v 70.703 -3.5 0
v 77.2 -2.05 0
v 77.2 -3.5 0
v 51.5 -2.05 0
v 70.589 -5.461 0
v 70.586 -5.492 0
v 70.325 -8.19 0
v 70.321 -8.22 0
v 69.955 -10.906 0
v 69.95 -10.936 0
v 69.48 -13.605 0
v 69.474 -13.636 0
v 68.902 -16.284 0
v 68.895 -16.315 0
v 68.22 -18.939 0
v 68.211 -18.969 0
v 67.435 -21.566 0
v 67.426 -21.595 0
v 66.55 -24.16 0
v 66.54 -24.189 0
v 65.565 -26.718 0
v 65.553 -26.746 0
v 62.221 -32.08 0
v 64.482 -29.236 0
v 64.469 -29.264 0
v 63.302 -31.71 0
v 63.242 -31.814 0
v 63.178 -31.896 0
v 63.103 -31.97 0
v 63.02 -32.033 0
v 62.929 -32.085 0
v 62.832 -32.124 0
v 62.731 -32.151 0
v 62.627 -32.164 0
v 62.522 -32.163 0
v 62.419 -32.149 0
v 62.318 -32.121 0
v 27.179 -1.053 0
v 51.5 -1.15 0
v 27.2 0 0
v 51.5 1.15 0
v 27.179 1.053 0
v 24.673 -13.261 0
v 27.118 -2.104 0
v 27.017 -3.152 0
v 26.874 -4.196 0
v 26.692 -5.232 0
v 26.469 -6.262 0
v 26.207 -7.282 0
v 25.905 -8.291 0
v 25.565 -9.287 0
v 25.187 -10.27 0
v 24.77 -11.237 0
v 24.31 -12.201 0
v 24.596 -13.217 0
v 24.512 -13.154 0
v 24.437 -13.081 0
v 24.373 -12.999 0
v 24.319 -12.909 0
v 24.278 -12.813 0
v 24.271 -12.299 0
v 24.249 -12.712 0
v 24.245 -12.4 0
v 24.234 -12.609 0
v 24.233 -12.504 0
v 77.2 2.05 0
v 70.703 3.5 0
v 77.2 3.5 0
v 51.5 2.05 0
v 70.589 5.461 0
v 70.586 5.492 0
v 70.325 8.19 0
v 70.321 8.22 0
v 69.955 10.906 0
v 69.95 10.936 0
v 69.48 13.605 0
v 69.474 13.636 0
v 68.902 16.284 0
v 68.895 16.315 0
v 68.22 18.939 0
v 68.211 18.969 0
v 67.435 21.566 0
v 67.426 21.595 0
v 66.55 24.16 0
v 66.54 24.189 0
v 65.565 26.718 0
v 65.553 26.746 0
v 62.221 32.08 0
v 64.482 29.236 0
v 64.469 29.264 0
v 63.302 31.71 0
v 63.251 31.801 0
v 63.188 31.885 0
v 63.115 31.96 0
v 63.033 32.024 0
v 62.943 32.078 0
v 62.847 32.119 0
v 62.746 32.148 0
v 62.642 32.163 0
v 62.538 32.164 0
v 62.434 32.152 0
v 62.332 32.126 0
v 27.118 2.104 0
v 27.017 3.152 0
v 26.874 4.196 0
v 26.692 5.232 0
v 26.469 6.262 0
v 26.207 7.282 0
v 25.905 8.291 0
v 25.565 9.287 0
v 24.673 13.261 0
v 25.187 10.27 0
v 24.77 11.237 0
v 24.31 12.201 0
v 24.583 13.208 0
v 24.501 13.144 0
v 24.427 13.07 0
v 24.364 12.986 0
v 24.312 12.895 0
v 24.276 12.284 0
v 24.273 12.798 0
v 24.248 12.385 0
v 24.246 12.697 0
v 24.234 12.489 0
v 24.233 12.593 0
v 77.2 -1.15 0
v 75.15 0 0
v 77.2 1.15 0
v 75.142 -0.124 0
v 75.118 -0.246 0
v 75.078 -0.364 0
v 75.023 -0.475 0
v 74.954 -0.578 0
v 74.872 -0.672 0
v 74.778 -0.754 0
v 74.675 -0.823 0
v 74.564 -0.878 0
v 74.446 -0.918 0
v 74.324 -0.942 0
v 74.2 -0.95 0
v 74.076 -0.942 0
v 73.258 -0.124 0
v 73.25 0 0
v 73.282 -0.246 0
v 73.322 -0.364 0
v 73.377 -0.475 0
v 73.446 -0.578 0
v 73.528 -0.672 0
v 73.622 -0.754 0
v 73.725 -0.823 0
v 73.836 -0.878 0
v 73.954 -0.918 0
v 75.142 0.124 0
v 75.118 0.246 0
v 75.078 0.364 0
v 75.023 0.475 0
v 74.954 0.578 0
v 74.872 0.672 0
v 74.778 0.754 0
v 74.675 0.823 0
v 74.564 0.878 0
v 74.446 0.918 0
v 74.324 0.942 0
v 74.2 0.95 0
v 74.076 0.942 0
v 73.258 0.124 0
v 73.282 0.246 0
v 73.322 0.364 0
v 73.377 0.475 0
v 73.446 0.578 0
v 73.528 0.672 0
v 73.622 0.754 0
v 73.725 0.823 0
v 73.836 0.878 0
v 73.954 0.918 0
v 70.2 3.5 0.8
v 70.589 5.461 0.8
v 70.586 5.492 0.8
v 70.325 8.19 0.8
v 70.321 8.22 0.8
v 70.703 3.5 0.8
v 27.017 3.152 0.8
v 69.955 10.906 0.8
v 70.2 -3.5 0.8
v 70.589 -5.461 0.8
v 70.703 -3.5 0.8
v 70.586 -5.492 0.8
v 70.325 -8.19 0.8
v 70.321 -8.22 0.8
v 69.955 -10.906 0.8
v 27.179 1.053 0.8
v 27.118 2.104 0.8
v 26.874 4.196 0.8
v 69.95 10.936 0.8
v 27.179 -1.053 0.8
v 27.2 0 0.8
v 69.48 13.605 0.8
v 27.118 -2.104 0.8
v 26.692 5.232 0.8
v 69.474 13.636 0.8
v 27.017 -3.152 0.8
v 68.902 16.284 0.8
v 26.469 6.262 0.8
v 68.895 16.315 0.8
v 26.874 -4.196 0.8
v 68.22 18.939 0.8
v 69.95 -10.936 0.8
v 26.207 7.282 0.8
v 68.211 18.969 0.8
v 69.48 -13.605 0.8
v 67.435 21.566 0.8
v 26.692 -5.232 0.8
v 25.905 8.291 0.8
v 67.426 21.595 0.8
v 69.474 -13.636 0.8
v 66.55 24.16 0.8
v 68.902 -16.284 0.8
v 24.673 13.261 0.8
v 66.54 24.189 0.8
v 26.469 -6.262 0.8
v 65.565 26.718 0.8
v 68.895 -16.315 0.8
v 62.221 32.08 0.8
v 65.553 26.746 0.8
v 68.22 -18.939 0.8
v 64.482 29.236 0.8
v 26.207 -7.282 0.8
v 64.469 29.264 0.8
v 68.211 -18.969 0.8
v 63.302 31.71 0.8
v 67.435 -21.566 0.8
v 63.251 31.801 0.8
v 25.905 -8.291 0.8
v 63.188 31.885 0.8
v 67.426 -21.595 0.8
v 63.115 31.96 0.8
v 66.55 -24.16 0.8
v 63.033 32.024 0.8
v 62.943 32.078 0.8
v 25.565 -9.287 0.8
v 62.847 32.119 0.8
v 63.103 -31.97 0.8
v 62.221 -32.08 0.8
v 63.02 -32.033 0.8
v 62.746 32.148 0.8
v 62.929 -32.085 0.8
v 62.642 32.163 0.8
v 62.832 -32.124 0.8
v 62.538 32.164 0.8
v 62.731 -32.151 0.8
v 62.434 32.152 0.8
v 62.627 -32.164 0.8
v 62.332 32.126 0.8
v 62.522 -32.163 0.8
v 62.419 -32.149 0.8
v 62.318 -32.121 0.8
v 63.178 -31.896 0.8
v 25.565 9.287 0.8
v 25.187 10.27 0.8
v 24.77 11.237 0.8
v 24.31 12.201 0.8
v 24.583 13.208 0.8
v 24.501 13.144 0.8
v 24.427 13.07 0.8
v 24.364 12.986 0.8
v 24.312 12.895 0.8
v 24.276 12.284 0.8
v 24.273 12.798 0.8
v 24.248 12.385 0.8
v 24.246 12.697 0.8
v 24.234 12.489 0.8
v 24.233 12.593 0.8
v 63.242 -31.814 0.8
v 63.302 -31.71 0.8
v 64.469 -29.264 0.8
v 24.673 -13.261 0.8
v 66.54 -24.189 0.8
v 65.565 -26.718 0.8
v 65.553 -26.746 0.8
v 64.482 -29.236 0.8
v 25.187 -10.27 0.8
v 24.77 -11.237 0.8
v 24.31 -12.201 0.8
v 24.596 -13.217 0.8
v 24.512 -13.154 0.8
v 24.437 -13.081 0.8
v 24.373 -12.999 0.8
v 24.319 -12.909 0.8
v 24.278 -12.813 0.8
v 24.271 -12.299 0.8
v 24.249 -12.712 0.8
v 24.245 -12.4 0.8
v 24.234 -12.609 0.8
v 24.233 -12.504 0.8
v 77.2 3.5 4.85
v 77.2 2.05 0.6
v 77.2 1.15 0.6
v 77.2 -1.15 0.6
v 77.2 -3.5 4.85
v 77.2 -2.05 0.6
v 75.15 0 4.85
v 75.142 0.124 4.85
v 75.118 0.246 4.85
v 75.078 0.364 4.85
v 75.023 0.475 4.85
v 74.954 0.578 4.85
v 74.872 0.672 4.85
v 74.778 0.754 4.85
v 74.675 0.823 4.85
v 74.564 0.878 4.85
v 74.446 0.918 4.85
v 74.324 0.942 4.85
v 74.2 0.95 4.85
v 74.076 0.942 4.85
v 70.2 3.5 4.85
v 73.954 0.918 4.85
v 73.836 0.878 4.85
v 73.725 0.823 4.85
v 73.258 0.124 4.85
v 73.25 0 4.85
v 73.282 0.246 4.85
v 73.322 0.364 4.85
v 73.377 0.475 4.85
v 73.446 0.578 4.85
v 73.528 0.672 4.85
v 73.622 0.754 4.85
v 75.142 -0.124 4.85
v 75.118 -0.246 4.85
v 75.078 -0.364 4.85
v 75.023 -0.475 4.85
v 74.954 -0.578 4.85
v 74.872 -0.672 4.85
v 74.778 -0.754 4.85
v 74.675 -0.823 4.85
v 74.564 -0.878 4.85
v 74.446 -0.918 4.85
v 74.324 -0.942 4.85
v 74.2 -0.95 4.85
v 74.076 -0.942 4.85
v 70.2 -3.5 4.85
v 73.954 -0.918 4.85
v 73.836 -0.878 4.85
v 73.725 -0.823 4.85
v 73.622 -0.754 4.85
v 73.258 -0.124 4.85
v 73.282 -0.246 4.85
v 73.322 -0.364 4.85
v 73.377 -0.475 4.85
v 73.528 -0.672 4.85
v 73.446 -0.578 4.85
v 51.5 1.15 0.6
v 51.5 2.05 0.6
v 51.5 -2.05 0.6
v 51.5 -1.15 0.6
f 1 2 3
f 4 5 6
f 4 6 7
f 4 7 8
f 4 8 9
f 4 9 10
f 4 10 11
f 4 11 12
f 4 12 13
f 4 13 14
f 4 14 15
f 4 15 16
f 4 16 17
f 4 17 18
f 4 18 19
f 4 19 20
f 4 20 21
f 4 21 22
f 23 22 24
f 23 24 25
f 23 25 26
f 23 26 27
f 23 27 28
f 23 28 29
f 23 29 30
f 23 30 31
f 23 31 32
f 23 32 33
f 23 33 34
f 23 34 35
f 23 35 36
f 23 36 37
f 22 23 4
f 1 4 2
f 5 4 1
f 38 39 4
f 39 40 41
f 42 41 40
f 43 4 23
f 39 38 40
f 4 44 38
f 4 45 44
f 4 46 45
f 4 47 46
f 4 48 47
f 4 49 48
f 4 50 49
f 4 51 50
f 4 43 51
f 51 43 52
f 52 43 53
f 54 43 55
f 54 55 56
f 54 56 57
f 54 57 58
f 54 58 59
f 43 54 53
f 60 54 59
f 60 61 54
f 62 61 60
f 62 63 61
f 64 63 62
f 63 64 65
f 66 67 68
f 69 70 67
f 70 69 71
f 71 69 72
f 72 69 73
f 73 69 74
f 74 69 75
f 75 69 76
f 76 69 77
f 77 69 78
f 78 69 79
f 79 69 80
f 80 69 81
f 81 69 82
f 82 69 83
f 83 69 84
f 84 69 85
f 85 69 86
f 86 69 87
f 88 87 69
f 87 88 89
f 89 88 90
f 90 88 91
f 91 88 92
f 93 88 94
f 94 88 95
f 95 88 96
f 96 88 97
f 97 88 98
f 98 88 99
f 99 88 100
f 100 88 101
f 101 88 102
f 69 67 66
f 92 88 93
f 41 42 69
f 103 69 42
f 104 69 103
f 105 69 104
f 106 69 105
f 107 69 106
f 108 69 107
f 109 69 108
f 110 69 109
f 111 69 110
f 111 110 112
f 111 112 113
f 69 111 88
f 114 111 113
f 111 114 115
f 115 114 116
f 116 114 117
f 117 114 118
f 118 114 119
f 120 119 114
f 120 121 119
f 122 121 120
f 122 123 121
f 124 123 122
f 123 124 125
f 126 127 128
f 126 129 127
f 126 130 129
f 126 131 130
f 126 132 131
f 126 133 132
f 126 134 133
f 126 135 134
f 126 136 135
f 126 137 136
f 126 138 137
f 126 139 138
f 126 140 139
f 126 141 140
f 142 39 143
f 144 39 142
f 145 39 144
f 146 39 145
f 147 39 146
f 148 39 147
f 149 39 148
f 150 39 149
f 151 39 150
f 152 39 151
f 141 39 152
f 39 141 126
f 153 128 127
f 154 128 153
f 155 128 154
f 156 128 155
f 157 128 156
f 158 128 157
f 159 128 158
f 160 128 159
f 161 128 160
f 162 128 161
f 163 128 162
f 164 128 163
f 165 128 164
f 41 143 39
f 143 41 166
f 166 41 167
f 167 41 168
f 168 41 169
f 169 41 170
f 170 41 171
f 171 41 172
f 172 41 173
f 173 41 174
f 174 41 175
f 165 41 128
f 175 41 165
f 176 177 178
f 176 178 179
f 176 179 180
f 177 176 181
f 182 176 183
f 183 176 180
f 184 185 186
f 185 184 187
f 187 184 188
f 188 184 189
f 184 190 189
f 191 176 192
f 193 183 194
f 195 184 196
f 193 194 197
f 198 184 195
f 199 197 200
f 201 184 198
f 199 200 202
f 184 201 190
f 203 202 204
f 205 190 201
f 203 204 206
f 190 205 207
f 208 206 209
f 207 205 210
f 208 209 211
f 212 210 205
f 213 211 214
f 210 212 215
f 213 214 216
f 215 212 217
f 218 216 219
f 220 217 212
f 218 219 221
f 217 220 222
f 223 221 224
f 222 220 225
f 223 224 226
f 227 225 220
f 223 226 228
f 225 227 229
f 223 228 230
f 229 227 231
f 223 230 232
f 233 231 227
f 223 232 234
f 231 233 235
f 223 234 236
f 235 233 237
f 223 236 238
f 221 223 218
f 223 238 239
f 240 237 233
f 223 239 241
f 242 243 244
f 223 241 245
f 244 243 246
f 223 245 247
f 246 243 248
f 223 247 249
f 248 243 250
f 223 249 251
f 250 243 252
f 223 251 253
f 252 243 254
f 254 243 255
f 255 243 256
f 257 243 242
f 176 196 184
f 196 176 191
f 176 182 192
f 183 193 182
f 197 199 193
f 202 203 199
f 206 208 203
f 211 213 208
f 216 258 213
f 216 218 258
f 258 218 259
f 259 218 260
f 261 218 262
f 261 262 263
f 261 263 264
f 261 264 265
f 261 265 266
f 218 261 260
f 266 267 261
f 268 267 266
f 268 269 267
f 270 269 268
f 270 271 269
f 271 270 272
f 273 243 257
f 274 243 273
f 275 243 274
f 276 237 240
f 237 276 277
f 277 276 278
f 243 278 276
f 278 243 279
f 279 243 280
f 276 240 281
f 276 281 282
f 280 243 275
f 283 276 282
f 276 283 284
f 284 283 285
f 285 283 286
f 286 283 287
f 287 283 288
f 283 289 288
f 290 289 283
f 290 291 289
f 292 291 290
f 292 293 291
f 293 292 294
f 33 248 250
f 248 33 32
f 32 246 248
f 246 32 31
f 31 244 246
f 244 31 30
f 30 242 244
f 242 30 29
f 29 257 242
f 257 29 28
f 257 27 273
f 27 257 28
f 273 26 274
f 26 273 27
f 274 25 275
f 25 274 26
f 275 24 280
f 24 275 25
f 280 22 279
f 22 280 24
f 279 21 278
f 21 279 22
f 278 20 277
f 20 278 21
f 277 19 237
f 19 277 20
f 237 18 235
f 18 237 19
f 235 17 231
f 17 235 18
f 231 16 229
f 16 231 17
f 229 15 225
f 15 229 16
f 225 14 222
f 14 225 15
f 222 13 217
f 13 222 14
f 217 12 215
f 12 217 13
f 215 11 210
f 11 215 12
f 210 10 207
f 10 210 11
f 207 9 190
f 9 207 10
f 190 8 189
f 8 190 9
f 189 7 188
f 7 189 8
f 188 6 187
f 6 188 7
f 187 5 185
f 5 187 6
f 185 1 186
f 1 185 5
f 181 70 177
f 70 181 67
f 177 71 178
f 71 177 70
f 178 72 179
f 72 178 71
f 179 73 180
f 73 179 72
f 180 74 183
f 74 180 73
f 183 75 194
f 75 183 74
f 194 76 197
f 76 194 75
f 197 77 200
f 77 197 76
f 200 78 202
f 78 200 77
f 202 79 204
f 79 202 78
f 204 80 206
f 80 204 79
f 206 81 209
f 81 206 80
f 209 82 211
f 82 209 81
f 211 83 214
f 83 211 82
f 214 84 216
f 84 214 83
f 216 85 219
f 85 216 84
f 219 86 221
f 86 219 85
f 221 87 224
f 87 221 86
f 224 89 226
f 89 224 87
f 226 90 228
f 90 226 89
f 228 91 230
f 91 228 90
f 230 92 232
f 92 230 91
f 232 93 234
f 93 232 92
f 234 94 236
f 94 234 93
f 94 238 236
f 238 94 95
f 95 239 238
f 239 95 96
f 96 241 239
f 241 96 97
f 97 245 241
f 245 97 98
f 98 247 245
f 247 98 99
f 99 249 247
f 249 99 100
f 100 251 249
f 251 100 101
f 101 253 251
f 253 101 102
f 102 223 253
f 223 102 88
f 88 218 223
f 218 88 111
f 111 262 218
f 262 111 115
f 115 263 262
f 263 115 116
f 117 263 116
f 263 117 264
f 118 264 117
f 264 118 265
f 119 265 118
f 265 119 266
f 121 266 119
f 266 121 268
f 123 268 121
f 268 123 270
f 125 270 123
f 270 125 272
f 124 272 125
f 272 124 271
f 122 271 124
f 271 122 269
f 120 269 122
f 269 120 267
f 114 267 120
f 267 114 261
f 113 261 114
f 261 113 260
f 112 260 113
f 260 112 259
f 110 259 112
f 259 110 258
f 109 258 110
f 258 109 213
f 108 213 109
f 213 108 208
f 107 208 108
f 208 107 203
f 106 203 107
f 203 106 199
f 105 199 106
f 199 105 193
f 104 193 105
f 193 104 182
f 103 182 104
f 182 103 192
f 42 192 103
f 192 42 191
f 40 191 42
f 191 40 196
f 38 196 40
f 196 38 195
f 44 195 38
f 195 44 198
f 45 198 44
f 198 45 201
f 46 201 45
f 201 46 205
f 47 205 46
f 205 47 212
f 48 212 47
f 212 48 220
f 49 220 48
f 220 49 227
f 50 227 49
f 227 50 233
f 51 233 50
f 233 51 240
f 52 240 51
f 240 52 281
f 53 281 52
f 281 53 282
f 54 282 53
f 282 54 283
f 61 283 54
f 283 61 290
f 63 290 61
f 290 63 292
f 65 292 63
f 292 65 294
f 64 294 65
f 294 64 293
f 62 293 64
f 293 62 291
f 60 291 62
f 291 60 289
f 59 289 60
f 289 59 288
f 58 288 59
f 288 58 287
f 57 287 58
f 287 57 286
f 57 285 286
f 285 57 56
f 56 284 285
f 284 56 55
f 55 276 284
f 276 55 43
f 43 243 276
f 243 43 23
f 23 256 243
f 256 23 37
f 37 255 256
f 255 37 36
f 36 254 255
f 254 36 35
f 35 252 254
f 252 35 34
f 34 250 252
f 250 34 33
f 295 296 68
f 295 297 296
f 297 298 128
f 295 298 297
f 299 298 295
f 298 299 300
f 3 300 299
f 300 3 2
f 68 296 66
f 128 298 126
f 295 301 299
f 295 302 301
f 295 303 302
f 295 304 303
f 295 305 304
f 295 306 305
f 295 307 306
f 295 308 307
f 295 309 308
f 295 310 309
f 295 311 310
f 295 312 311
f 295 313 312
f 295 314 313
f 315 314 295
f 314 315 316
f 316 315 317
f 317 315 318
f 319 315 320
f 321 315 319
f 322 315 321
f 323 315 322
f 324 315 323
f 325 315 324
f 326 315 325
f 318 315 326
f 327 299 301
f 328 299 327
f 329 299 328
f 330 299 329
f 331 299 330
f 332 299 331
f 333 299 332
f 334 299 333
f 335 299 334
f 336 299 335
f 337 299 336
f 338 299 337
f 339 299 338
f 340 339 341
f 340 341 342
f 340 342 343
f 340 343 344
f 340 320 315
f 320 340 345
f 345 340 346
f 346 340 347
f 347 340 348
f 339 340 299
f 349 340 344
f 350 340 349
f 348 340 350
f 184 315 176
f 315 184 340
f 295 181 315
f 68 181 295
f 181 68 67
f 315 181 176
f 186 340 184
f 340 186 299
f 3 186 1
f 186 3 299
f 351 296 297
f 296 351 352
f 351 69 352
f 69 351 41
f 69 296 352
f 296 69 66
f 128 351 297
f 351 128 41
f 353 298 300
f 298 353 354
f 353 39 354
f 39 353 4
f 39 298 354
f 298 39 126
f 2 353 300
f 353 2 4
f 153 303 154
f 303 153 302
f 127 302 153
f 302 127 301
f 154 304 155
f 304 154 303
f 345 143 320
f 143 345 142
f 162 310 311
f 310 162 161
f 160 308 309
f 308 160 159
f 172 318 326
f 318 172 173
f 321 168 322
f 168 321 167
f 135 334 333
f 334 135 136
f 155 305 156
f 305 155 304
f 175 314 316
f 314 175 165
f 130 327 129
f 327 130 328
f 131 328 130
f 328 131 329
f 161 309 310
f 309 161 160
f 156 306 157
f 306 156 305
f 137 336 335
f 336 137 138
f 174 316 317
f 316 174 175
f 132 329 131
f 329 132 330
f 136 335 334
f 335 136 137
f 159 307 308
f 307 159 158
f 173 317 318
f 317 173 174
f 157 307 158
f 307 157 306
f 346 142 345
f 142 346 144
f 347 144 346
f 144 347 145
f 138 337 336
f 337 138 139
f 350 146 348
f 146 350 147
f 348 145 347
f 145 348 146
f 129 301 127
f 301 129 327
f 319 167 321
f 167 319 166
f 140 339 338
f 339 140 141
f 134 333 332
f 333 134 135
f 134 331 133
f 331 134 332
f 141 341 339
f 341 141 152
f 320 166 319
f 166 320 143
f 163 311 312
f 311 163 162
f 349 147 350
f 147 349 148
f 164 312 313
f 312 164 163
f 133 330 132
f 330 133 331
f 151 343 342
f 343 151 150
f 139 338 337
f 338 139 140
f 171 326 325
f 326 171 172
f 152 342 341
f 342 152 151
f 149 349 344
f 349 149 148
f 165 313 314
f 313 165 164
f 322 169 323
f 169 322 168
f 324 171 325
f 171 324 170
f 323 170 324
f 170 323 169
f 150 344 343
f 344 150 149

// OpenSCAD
// file: parameters.scad
// =============================================================================
// Gen-BO — nightly 2026-10-07 (physics_scorer, honest magpylib watts)
// Flush seat + wider copper + tight assists: the magnets sit on the steel in 5.00 mm through-pockets (carrier = magnet height, recess 0 instead of 0.10 mm), so the magnet faces are 0.2 mm closer while still exactly 0.50 mm from the wound envelope; the bobbin lip beyond the copper is trimmed 1.0 → 0.8 mm (still the 0.8 mm wall minimum, stator web still 1.2 mm), which widens each copper sector by ~0.6° on 28–70 mm × 18.0 mm-build bobbins; and the diametric Ø5 assists are pulled in to R43/50/57 (±7 mm) where they add most flux under the copper. Same Ø134 × 4.76 mm steel discs as Gen-BL.
// Clocking 0 deg (magnets N facing S) + D-flat keyed bore + index notch + flip-symmetric hole map.
// Windable 2-piece bobbin; turns = physics_scorer turns_fit; copper only between flanges.
// Steel back-iron: 2× Ø134 × 4.76 mm (3/16") mild-steel discs (steel_backiron_disc.dxf); magnets sit ON the steel
// (through-pockets) -> score with --back-iron.
// =============================================================================
topology            = "dual_rotor";

// --- Wire / winding (physics_scorer winding-fit) -------------------------------
wire_awg            = 26;
wire_od             = 0.45;     // insulated OD mm (bare 0.405)
fill_realistic      = 0.65;     // insulated-wire area / window (DENSE layered wind with a jig; scorer cap 0.65)
turns               = 595;       // = physics_scorer turns_fit (do NOT raise)
coil_former_type    = "bobbin";
coil_core_inset     = 18.00;     // radial copper build: hub = copper boundary inset by this
wind_build_axial    = 0.0;      // nothing proud of the flanges
wind_build_radial   = 0.0;

// --- Bobbin (base + lid) ---------------------------------------------------------
coil_id_r           = 28.00;    // copper boundary sector
coil_od_r           = 70.00;
span_deg            = 53.24;    // = pitch - 2*asin((wall+0.85)/coil_id_r) -> >=1.2 mm stator web
former_web          = 8.10;     // copper height between flanges (TALL copper: steel keeps Bz up)
flange_t            = 0.80;     // >= 0.8 mm FDM wall rule (tall winds push on the flanges)
wall                = 0.80;     // flange lip beyond copper
former_bare_h       = former_web + 2 * flange_t;
coil_envelope_h     = former_bare_h + 2 * wind_build_axial;
tab_w               = 7.0;
tab_len             = 7.0;
tab_h               = former_bare_h / 2;
pin_d               = 1.9;      // 1.75 mm filament locating pin
coil_mount_r        = coil_od_r + 0.2 + 4.0;
lead_y              = 1.6;
lead_slot_w         = 0.9;
lead_groove_d       = 0.6;

// --- Gap -------------------------------------------------------------------------
run_clear           = 0.50;     // rotor face -> flange
gap_spacer_h        = run_clear + wind_build_axial;
m2m                 = coil_envelope_h + 2 * run_clear;   // rotor face to rotor face (= gap_sleeve length)

// --- Stator ----------------------------------------------------------------------
coil_stations       = 6;
bay_clear           = 0.25;
stator_thick        = former_bare_h;                        // bobbins flush both faces
stator_od           = 158;
shaft_clear_stator  = 14.0;     // stator is static; gap sleeve OD 12 spins inside

// --- Rotor(s) --------------------------------------------------------------------
magnet_Br           = 1.43;     // N52
magnet_d_large      = 20.0;
magnet_h_large      = 5.0;      // one O20x5 per pocket
magnet_h_small      = 5.0;      // one O5x5 per pocket
halbach_magnetisation = "diametric"; // O5x5 assist magnets MUST be DIAMETRICALLY magnetised (tangential)
rotor_b_same_axis   = true;     // same-index magnets share one axis: N faces S across the gap
large_pocket_d      = 20.3;
small_pocket_d      = 5.3;
pocket_h            = 5.00;     // THROUGH the carrier: magnet back face sits on the steel disc (FLUSH seat: carrier = magnet height, magnet face level with the rotor face)
large_n             = 8;
R_large             = 50.0;
R_small_inner       = 43.0;
R_small_mid         = 50.0;
R_small_outer       = 57.0;
small_r_list        = [R_small_inner, R_small_mid, R_small_outer];   // O5 pockets between poles
carrier_od          = 134.0;
carrier_thick       = pocket_h;
hub_h               = 12.0;     // > steel_t + insert: radial set-screw clears the steel
hub_od              = 24.0;     // slim hub so the M4 brace rods fit at R~18 inside the coil ring
hub_insert_d        = 4.0;      // M3 heat-set insert, radial, bears on the D-flat
rotor_b_offset_deg  = 0.0;      // CLOCKING: magnets directly opposite
shaft_key           = "dflat";
dflat_depth         = 0.5;      // 8 mm shaft with 0.5 mm flat (7.5 across flat)
index_notch_d       = 3.0;

// --- Steel back-iron (buyable laser-cut) -------------------------------------------
steel_t             = 4.76;      // mild steel thickness (image method ignores it; sized from steel_flux.py so the return path stays well below saturation)
steel_center_hole   = 26.0;     // slips over the rotor hub (OD 24)
steel_od            = carrier_od;   // steel disc OD = rotor carrier OD

// --- Modular MAX interface ----------------------------------------------------------
shaft_bore          = 8.35;
dflat_x             = 4.0 - dflat_depth + (shaft_bore - 8.0) / 2;
bearing_d           = 21.85;
bearing_h           = 7.2;
m3_clear            = 3.5;
bolt_r_inner        = 30.0;     // M3 steel-disc clamp bolts (inside the magnet ring)
bolt_n_inner        = 4;
bolt_inner_angles   = [0, 90, 180, 270];
bolt_r_outer        = 63.0;     // M3 steel-disc clamp bolts (outside the magnet ring)
bolt_outer_angles   = [45, 135, 225, 315];
flange_bolt_r       = 73.0;     // frame rods: OUTSIDE the rotor OD (rotors spin inside them)
flange_bolt_n       = 6;
flange_bolt_offset  = 30.00;    // between coil stations -> never cuts a lead groove/tab
brace_r             = 18.0;
brace_d             = 4.3;      // temporary M4 jack rods (assembly only)
brace_n             = 4;
brace_angles        = [45, 135, 225, 315];          // flip-symmetric

spacer_pad_od       = 14.0;
spacer_pad_id       = m3_clear;
endbell_od          = 158;
endbell_thick       = 8.0;
endbell_shaft_clear = 10.0;
collar_h            = 10.0;
standoff_od         = 9.0;
frame_standoff_h    = run_clear + carrier_thick + hub_h + collar_h + 2.0;
sleeve_od           = 12.0;
plate_max_mm        = 410;

$fn = 64;
// main file
// Gen-BO — bobbin LID (top flange + locating tab). Print x6, flange face DOWN on the bed.
// CA-glue onto the hub top BEFORE winding. Tab = lap joint into the stator tab pocket; 1.75 mm filament
// pin through pin hole + stator ledge, trim flush. Lead slots carry both leads flush.
include <parameters.scad>;
$fn = 48;
module sector_2d(r_in, r_out, ang) {
    polygon([
        for (a = [-ang/2 : ang/24 : ang/2]) [r_in*cos(a), r_in*sin(a)],
        for (a = [ang/2 : -ang/24 : -ang/2]) [r_out*cos(a), r_out*sin(a)]
    ]);
}
module footprint_2d() { offset(r=wall) sector_2d(coil_id_r, coil_od_r, span_deg); }
module hub_2d()       { offset(delta=-coil_core_inset) sector_2d(coil_id_r, coil_od_r, span_deg); }

difference() {
    union() {
        linear_extrude(flange_t) footprint_2d();
        translate([coil_od_r + 0.2, -tab_w/2, 0]) cube([tab_len, tab_w, tab_h]);
    }
    translate([coil_mount_r, 0, -0.1]) cylinder(d=pin_d, h=tab_h + 1);
    for (y = [lead_y, -lead_y])
        translate([coil_od_r - coil_core_inset - 0.5, y - lead_slot_w/2, -0.1])
            cube([coil_core_inset + tab_len + 2, lead_slot_w, lead_groove_d + 0.1]);
}
